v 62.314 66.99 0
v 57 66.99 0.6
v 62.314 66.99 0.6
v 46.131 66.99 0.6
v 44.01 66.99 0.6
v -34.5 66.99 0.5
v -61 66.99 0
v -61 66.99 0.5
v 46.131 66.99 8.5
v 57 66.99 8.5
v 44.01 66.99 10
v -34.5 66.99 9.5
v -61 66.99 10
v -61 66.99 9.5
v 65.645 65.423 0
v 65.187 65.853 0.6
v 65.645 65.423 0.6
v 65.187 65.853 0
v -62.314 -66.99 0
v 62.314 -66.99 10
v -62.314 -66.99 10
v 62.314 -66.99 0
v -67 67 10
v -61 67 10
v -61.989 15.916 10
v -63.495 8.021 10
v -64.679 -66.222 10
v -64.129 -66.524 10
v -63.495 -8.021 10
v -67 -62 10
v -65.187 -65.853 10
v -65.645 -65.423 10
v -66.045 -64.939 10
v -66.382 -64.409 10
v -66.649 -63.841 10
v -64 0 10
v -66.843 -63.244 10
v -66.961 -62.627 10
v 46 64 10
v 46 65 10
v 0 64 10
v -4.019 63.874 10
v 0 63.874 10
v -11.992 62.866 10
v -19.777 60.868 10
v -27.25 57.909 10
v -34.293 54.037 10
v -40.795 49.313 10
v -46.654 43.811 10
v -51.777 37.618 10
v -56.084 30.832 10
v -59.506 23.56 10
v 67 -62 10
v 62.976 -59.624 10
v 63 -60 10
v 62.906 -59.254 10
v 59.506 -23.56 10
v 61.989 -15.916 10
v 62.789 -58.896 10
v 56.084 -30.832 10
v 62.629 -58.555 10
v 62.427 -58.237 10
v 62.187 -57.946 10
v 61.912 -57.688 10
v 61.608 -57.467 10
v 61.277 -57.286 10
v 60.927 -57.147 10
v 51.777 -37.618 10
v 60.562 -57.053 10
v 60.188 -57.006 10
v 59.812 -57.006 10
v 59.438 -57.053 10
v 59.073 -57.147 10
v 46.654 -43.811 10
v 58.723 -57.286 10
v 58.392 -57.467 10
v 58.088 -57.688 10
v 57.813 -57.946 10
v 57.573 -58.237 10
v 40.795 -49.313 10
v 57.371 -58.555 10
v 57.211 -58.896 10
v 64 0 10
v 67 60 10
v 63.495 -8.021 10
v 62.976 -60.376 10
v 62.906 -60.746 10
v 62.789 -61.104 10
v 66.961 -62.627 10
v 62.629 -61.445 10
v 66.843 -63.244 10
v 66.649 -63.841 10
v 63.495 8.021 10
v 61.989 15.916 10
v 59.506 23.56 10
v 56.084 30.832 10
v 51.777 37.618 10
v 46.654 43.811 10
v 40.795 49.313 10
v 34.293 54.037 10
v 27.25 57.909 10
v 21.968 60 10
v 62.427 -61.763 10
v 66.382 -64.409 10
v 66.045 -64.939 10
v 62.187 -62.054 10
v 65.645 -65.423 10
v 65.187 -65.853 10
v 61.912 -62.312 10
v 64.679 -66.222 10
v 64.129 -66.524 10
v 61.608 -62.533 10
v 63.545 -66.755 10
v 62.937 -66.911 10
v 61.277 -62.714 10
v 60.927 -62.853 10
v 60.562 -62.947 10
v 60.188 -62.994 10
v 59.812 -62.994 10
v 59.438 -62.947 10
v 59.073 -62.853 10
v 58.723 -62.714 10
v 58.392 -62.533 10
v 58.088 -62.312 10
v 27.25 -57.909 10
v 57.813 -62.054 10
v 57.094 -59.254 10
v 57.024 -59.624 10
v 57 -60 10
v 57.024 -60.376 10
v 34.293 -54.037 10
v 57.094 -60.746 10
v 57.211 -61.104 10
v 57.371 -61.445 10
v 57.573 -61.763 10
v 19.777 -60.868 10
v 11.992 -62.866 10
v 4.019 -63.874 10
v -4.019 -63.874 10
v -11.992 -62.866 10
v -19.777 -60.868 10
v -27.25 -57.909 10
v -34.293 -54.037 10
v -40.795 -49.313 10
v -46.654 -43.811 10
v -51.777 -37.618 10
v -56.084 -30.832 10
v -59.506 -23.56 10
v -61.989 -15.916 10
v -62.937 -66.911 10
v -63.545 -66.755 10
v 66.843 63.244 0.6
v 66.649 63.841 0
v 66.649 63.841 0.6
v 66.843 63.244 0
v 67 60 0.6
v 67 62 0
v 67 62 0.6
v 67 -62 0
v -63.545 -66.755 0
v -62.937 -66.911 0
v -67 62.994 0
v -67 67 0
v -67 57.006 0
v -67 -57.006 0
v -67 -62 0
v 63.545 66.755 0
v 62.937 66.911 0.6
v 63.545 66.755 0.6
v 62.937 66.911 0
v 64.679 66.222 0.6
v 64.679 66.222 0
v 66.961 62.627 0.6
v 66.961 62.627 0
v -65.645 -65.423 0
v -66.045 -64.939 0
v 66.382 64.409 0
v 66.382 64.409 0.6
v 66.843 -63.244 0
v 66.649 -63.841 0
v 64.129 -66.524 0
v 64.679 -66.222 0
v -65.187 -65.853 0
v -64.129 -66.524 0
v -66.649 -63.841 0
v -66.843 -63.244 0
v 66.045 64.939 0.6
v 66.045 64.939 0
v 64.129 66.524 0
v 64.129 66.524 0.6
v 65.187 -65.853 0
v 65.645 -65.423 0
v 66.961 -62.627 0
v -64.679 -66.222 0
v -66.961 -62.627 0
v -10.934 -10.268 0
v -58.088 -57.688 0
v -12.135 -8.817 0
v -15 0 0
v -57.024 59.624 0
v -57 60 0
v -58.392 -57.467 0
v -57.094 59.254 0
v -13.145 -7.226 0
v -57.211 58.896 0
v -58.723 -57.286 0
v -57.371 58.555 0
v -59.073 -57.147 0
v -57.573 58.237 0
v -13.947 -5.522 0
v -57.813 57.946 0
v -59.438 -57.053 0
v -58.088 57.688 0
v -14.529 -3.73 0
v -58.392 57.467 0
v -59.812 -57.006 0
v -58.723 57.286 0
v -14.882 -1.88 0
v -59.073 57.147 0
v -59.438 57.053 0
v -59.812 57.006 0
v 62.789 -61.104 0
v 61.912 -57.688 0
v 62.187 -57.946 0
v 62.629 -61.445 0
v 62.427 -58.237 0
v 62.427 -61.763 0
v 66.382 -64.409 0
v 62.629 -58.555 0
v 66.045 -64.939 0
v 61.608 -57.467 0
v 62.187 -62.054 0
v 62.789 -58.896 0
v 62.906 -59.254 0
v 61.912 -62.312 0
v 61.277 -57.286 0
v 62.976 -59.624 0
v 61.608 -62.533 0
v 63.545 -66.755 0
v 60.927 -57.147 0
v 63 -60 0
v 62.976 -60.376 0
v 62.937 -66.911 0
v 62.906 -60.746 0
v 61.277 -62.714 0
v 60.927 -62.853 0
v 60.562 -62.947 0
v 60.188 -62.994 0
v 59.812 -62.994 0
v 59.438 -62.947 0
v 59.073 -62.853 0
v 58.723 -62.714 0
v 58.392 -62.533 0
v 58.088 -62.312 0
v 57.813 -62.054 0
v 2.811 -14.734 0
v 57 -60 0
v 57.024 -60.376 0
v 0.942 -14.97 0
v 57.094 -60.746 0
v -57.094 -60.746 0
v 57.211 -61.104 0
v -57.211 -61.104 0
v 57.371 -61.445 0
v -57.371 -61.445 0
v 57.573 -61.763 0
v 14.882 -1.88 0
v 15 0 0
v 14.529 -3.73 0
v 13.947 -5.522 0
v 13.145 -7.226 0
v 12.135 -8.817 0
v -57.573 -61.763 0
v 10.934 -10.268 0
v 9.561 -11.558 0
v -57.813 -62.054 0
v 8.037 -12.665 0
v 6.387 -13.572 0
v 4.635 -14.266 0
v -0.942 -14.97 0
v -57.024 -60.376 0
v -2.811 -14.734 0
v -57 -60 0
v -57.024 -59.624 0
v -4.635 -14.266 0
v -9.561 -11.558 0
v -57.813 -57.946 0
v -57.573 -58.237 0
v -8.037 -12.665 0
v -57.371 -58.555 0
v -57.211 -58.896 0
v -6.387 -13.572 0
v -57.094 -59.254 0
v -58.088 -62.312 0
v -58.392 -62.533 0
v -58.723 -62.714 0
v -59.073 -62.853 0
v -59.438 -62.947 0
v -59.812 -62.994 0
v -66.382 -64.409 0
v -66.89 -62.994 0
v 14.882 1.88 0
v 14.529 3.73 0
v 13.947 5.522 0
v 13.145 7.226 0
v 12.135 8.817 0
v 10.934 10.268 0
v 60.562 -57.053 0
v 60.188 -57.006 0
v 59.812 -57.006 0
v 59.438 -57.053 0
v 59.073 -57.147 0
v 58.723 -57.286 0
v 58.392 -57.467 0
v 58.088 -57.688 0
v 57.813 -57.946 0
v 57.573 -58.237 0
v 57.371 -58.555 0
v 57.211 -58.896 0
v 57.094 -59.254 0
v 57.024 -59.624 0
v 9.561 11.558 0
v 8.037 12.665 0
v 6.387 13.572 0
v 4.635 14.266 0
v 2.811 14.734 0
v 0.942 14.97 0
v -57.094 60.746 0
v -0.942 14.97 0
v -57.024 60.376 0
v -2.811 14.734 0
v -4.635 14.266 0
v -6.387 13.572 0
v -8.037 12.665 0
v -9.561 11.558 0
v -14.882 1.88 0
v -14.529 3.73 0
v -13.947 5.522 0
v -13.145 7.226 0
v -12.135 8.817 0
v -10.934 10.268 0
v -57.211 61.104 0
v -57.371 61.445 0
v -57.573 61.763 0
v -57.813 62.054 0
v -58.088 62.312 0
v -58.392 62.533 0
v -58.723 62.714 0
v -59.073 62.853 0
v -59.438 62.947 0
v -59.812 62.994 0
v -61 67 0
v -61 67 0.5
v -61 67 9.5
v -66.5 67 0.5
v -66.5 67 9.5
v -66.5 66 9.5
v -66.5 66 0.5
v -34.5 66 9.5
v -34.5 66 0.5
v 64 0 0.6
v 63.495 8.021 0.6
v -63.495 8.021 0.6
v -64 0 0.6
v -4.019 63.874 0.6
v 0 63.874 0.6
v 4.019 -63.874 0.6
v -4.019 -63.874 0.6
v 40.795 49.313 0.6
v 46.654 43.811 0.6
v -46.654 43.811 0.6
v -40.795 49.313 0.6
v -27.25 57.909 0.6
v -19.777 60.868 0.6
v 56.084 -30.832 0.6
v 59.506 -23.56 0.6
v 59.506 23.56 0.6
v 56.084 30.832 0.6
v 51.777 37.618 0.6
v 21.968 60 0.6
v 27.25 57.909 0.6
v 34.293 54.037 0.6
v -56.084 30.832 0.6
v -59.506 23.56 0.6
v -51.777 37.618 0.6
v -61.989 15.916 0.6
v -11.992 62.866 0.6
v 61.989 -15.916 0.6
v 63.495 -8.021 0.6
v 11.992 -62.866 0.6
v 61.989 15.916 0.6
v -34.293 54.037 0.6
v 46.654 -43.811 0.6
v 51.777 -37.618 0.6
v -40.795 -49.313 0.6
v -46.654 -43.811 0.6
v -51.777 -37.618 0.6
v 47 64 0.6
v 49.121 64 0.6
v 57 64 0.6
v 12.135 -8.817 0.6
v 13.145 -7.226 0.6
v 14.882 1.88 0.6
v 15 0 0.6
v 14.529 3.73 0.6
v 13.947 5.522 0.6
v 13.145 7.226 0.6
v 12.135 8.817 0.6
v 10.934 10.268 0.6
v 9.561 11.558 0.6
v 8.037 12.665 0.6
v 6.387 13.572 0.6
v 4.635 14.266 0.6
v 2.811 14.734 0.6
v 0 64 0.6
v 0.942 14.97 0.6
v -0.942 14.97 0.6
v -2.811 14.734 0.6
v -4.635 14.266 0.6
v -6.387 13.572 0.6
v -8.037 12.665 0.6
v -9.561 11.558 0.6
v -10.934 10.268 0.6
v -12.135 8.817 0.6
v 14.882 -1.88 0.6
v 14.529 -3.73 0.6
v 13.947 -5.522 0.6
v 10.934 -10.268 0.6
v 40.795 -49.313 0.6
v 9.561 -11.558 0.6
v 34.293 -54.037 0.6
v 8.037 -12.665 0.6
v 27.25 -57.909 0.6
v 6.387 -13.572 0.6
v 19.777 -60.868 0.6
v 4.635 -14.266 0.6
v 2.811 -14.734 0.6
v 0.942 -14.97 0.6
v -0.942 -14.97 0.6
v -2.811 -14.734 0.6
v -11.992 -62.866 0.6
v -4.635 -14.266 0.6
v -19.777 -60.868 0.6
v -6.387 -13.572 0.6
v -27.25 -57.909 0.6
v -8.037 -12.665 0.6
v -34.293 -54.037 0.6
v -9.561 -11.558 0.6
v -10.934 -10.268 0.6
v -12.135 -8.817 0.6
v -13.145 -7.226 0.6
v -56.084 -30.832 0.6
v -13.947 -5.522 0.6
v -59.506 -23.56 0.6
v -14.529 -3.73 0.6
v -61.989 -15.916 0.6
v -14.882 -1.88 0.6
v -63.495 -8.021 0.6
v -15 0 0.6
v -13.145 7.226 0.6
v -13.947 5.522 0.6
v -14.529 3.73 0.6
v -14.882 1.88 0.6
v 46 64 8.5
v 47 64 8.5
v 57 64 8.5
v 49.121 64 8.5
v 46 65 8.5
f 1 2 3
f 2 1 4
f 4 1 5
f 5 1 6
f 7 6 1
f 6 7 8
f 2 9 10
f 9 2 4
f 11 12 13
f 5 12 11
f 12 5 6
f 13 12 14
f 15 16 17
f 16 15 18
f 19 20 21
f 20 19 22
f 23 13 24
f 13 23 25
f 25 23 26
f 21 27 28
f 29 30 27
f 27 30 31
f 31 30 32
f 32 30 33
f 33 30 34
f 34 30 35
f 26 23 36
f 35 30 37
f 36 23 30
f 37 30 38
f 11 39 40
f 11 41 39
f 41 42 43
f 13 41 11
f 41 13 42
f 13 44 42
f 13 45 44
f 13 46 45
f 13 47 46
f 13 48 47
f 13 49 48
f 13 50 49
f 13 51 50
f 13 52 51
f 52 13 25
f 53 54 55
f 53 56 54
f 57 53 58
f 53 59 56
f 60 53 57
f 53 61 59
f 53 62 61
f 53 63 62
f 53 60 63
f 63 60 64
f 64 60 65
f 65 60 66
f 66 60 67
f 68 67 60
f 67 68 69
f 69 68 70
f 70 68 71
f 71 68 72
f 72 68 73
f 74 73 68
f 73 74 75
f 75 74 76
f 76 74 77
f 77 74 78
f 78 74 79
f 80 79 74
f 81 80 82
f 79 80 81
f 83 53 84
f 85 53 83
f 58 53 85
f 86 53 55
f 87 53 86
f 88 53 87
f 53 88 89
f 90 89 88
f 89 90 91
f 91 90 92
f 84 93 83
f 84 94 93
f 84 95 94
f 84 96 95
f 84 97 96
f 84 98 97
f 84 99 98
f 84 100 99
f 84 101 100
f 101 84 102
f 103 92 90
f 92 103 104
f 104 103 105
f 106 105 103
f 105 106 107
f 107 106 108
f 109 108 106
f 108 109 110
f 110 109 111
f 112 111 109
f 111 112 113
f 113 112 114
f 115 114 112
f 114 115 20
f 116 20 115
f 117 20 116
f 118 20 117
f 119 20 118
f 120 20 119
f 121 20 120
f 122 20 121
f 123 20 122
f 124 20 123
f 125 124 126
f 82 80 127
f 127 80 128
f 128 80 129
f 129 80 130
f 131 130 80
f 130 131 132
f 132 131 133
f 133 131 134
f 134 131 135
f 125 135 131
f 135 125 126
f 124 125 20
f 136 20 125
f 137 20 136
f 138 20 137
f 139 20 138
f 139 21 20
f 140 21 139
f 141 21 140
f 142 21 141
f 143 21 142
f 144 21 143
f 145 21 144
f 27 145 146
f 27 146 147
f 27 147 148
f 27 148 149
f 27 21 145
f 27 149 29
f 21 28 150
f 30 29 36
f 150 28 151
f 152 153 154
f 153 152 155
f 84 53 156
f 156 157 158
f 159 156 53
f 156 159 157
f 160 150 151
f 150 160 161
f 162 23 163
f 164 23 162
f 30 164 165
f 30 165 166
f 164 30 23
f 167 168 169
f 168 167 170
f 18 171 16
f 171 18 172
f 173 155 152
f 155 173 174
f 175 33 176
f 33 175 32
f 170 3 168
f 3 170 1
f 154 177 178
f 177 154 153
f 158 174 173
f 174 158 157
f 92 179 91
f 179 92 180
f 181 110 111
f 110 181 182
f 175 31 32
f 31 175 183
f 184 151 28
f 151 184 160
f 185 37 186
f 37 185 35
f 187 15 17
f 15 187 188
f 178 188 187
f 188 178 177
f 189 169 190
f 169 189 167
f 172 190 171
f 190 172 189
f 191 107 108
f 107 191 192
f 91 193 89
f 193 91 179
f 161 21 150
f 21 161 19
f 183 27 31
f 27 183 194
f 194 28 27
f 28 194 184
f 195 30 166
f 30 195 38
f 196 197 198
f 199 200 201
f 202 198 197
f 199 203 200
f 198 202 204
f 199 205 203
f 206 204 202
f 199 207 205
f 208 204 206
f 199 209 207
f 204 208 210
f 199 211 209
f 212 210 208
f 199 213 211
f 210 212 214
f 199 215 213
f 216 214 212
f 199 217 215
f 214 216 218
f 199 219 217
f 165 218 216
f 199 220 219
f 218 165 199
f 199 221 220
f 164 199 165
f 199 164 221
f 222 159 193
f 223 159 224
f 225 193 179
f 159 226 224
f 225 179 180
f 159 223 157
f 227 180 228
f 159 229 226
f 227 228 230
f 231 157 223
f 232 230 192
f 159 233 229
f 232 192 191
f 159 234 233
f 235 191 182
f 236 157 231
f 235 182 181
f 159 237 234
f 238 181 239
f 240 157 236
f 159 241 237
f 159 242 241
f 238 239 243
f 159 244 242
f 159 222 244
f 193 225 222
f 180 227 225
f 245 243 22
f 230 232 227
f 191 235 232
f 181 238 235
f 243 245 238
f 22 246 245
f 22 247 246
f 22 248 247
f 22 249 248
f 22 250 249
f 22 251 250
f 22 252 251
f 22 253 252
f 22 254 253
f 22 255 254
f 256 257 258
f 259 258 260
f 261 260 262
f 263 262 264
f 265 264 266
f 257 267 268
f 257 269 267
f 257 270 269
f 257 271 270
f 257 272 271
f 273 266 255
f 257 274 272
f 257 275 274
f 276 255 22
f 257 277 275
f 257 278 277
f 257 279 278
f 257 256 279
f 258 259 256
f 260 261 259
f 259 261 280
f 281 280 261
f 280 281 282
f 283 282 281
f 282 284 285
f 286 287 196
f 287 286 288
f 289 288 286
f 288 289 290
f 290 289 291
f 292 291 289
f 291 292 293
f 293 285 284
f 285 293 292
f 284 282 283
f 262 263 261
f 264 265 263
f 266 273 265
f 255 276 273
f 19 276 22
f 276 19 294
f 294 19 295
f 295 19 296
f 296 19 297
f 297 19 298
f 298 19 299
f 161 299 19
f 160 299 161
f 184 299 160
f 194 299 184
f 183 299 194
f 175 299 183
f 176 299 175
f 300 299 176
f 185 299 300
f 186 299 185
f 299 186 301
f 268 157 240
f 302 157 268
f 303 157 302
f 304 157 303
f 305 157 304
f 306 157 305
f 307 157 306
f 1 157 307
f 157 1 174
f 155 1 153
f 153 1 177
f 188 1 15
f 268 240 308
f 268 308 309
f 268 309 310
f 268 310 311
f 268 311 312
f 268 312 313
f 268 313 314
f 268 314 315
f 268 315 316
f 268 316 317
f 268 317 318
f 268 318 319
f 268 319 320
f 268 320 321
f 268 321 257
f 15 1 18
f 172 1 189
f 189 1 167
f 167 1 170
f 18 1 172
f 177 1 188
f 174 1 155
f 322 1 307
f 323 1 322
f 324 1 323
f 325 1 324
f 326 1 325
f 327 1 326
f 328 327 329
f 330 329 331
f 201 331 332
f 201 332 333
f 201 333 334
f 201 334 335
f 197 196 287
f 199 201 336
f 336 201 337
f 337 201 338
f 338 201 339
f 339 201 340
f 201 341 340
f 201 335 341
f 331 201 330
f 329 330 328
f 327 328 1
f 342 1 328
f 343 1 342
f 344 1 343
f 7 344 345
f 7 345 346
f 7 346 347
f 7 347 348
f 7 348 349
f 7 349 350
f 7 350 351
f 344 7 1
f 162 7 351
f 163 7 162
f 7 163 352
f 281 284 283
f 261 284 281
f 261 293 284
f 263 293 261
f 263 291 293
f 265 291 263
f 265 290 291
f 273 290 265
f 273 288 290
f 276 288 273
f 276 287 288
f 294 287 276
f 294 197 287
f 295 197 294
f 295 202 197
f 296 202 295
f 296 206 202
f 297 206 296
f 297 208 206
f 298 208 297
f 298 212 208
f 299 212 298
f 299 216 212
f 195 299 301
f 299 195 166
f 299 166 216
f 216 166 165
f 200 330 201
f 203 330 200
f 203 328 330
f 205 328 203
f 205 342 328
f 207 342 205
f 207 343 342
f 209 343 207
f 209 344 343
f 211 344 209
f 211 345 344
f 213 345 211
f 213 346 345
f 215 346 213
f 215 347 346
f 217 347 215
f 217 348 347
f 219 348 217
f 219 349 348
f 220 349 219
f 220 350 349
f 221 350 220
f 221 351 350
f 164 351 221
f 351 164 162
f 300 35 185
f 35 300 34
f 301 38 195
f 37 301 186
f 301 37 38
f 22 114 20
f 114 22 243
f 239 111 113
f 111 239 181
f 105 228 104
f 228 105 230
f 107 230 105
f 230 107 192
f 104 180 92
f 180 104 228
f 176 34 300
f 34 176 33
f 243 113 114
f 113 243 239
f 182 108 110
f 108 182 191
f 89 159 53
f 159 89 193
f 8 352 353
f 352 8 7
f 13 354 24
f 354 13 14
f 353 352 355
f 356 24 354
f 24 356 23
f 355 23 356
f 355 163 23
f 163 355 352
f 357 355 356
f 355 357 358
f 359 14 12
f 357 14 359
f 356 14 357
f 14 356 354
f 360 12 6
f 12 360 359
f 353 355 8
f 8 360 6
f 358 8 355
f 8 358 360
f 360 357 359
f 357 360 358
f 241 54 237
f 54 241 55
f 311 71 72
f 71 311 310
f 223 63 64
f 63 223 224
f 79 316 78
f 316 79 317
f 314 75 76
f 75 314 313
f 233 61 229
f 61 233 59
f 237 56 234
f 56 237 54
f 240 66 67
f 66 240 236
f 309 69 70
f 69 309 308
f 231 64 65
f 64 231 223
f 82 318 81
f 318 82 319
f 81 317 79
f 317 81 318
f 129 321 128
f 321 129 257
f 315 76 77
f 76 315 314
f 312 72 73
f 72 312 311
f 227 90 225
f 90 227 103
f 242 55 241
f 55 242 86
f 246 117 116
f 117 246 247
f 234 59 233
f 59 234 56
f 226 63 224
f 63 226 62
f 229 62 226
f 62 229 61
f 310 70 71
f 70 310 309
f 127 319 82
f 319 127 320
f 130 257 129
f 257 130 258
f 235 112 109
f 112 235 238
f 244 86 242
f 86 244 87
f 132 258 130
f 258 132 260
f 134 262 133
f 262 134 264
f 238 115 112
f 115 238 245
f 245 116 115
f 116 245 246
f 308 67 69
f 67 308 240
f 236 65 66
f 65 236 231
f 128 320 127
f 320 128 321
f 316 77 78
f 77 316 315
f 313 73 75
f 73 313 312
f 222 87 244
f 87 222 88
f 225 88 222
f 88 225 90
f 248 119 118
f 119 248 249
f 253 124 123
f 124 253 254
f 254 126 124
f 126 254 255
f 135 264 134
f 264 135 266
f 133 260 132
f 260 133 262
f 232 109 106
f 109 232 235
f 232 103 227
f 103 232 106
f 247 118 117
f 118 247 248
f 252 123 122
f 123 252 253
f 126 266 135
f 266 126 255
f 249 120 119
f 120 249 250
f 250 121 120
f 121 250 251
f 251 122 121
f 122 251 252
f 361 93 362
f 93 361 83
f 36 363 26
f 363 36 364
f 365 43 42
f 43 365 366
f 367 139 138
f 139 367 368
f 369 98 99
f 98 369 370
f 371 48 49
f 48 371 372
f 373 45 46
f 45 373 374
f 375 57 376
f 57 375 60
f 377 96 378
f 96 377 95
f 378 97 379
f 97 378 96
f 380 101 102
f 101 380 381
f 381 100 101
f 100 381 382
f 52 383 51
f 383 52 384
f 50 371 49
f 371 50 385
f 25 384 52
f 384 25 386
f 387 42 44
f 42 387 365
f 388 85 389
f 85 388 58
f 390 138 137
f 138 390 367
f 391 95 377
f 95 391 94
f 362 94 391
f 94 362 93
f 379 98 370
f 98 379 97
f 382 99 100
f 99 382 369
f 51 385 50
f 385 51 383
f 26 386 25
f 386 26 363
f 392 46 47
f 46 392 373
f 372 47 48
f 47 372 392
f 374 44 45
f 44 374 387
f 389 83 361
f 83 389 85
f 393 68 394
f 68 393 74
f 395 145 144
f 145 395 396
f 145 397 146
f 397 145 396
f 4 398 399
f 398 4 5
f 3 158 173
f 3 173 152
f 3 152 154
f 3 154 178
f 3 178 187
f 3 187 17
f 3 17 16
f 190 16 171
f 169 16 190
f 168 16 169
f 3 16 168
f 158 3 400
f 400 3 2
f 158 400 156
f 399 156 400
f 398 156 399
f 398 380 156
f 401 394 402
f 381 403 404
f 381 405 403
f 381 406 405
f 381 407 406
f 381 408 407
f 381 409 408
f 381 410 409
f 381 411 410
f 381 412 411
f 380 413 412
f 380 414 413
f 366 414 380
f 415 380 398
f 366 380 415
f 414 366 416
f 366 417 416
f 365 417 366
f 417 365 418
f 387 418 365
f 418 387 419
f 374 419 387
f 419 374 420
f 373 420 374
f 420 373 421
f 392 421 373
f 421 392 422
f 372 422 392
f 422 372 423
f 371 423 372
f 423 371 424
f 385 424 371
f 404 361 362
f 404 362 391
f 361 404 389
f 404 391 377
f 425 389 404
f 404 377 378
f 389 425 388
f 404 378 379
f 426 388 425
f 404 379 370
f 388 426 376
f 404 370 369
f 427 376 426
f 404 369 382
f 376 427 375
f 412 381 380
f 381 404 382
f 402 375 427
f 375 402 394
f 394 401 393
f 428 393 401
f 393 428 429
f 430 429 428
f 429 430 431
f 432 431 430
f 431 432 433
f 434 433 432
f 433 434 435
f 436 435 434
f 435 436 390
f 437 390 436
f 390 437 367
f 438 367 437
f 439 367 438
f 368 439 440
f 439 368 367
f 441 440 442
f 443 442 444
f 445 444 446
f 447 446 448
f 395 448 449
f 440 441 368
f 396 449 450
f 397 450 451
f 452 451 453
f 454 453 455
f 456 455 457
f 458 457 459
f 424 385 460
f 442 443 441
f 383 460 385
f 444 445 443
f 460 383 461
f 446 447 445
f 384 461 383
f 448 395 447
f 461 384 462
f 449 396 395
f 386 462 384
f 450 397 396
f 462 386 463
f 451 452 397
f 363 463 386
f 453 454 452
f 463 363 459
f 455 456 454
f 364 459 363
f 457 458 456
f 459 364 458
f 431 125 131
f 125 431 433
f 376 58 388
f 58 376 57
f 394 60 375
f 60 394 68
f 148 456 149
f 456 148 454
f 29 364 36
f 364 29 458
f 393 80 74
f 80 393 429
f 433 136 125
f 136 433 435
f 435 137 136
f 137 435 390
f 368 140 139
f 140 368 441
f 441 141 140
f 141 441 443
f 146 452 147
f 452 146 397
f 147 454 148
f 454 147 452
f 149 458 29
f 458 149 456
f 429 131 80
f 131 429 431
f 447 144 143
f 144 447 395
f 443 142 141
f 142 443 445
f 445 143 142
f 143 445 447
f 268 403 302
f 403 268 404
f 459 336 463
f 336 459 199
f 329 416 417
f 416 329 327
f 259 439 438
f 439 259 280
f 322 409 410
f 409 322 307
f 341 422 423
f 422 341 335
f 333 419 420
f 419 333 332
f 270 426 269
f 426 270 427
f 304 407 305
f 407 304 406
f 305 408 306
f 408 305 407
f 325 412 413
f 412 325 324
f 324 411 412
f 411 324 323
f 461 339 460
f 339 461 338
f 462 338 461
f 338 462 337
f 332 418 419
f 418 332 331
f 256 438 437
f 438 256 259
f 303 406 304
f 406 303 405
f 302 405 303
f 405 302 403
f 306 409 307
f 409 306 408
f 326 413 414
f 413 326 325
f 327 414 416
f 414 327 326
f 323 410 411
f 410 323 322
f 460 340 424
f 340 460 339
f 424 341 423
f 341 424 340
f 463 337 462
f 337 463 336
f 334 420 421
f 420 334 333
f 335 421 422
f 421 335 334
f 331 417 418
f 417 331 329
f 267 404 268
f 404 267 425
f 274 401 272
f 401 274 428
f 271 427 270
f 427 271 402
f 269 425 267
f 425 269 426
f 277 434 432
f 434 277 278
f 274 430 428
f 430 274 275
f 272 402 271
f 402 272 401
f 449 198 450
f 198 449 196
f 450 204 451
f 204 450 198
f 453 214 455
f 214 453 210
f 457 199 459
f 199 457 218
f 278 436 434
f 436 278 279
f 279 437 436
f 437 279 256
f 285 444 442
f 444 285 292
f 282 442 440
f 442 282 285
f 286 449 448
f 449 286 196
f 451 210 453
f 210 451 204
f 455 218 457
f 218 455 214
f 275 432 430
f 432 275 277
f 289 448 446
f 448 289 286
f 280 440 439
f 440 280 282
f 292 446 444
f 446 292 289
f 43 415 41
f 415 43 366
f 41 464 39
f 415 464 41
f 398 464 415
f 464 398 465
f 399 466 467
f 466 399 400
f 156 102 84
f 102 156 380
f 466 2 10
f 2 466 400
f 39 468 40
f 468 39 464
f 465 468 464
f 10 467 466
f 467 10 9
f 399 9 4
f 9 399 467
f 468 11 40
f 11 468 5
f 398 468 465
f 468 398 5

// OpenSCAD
$fn = 50;


difference() {
	union() {
		hull() {
			translate(v = [-62.0000000000, 62.0000000000, 0]) {
				cylinder(h = 10, r = 5);
			}
			translate(v = [62.0000000000, 62.0000000000, 0]) {
				cylinder(h = 10, r = 5);
			}
			translate(v = [-62.0000000000, -62.0000000000, 0]) {
				cylinder(h = 10, r = 5);
			}
			translate(v = [62.0000000000, -62.0000000000, 0]) {
				cylinder(h = 10, r = 5);
			}
		}
		translate(v = [-67.0000000000, 61.0000000000, 0]) {
			cube(size = [6, 6, 10]);
		}
	}
	union() {
		translate(v = [-67.5000000000, -60.0000000000, -250.0000000000]) {
			rotate(a = [0, 0, 0]) {
				difference() {
					union() {
						hull() {
							translate(v = [7.5000000000, 0, 0]) {
								cylinder(h = 250, r = 3.0000000000, r1 = 3.0000000000, r2 = 3.0000000000);
							}
							translate(v = [-7.5000000000, 0, 0]) {
								cylinder(h = 250, r = 3.0000000000, r1 = 3.0000000000, r2 = 3.0000000000);
							}
						}
					}
					union();
				}
			}
		}
		translate(v = [-67.5000000000, 60.0000000000, -250.0000000000]) {
			rotate(a = [0, 0, 0]) {
				difference() {
					union() {
						hull() {
							translate(v = [7.5000000000, 0, 0]) {
								cylinder(h = 250, r = 3.0000000000, r1 = 3.0000000000, r2 = 3.0000000000);
							}
							translate(v = [-7.5000000000, 0, 0]) {
								cylinder(h = 250, r = 3.0000000000, r1 = 3.0000000000, r2 = 3.0000000000);
							}
						}
					}
					union();
				}
			}
		}
		translate(v = [-66.5000000000, 66.0000000000, 0.5000000000]) {
			cube(size = [32, 1, 9.0000000000]);
		}
		translate(v = [60.0000000000, -60.0000000000, -50.0000000000]) {
			cylinder(h = 100, r = 3.0000000000);
		}
		translate(v = [0, 0, 0.6000000000]) {
			cylinder(h = 12.4000000000, r = 64.0000000000);
		}
		translate(v = [0, 0, -5.0000000000]) {
			cylinder(h = 10, r = 15.0000000000);
		}
		translate(v = [0.0000000000, 60.0000000000, 0.6000000000]) {
			cube(size = [67.0000000000, 4, 12.4000000000]);
		}
		translate(v = [57.0000000000, 60.0000000000, 0.6000000000]) {
			cube(size = [10, 7, 12.4000000000]);
		}
		translate(v = [46.0000000000, 60.0000000000, 8.5000000000]) {
			cube(size = [21, 7, 1.5000000000]);
		}
		translate(v = [43.2500000000, 67.7500000000, 0.6000000000]) {
			rotate(a = [0, 0, -45]) {
				cube(size = [7.5000000000, 1.5000000000, 12.4000000000]);
			}
		}
		translate(v = [12.0610000000, 58.0000000000, 0.6000000000]) {
			cube(size = [7.5000000000, 2, 9.4000000000]);
		}
	}
}
